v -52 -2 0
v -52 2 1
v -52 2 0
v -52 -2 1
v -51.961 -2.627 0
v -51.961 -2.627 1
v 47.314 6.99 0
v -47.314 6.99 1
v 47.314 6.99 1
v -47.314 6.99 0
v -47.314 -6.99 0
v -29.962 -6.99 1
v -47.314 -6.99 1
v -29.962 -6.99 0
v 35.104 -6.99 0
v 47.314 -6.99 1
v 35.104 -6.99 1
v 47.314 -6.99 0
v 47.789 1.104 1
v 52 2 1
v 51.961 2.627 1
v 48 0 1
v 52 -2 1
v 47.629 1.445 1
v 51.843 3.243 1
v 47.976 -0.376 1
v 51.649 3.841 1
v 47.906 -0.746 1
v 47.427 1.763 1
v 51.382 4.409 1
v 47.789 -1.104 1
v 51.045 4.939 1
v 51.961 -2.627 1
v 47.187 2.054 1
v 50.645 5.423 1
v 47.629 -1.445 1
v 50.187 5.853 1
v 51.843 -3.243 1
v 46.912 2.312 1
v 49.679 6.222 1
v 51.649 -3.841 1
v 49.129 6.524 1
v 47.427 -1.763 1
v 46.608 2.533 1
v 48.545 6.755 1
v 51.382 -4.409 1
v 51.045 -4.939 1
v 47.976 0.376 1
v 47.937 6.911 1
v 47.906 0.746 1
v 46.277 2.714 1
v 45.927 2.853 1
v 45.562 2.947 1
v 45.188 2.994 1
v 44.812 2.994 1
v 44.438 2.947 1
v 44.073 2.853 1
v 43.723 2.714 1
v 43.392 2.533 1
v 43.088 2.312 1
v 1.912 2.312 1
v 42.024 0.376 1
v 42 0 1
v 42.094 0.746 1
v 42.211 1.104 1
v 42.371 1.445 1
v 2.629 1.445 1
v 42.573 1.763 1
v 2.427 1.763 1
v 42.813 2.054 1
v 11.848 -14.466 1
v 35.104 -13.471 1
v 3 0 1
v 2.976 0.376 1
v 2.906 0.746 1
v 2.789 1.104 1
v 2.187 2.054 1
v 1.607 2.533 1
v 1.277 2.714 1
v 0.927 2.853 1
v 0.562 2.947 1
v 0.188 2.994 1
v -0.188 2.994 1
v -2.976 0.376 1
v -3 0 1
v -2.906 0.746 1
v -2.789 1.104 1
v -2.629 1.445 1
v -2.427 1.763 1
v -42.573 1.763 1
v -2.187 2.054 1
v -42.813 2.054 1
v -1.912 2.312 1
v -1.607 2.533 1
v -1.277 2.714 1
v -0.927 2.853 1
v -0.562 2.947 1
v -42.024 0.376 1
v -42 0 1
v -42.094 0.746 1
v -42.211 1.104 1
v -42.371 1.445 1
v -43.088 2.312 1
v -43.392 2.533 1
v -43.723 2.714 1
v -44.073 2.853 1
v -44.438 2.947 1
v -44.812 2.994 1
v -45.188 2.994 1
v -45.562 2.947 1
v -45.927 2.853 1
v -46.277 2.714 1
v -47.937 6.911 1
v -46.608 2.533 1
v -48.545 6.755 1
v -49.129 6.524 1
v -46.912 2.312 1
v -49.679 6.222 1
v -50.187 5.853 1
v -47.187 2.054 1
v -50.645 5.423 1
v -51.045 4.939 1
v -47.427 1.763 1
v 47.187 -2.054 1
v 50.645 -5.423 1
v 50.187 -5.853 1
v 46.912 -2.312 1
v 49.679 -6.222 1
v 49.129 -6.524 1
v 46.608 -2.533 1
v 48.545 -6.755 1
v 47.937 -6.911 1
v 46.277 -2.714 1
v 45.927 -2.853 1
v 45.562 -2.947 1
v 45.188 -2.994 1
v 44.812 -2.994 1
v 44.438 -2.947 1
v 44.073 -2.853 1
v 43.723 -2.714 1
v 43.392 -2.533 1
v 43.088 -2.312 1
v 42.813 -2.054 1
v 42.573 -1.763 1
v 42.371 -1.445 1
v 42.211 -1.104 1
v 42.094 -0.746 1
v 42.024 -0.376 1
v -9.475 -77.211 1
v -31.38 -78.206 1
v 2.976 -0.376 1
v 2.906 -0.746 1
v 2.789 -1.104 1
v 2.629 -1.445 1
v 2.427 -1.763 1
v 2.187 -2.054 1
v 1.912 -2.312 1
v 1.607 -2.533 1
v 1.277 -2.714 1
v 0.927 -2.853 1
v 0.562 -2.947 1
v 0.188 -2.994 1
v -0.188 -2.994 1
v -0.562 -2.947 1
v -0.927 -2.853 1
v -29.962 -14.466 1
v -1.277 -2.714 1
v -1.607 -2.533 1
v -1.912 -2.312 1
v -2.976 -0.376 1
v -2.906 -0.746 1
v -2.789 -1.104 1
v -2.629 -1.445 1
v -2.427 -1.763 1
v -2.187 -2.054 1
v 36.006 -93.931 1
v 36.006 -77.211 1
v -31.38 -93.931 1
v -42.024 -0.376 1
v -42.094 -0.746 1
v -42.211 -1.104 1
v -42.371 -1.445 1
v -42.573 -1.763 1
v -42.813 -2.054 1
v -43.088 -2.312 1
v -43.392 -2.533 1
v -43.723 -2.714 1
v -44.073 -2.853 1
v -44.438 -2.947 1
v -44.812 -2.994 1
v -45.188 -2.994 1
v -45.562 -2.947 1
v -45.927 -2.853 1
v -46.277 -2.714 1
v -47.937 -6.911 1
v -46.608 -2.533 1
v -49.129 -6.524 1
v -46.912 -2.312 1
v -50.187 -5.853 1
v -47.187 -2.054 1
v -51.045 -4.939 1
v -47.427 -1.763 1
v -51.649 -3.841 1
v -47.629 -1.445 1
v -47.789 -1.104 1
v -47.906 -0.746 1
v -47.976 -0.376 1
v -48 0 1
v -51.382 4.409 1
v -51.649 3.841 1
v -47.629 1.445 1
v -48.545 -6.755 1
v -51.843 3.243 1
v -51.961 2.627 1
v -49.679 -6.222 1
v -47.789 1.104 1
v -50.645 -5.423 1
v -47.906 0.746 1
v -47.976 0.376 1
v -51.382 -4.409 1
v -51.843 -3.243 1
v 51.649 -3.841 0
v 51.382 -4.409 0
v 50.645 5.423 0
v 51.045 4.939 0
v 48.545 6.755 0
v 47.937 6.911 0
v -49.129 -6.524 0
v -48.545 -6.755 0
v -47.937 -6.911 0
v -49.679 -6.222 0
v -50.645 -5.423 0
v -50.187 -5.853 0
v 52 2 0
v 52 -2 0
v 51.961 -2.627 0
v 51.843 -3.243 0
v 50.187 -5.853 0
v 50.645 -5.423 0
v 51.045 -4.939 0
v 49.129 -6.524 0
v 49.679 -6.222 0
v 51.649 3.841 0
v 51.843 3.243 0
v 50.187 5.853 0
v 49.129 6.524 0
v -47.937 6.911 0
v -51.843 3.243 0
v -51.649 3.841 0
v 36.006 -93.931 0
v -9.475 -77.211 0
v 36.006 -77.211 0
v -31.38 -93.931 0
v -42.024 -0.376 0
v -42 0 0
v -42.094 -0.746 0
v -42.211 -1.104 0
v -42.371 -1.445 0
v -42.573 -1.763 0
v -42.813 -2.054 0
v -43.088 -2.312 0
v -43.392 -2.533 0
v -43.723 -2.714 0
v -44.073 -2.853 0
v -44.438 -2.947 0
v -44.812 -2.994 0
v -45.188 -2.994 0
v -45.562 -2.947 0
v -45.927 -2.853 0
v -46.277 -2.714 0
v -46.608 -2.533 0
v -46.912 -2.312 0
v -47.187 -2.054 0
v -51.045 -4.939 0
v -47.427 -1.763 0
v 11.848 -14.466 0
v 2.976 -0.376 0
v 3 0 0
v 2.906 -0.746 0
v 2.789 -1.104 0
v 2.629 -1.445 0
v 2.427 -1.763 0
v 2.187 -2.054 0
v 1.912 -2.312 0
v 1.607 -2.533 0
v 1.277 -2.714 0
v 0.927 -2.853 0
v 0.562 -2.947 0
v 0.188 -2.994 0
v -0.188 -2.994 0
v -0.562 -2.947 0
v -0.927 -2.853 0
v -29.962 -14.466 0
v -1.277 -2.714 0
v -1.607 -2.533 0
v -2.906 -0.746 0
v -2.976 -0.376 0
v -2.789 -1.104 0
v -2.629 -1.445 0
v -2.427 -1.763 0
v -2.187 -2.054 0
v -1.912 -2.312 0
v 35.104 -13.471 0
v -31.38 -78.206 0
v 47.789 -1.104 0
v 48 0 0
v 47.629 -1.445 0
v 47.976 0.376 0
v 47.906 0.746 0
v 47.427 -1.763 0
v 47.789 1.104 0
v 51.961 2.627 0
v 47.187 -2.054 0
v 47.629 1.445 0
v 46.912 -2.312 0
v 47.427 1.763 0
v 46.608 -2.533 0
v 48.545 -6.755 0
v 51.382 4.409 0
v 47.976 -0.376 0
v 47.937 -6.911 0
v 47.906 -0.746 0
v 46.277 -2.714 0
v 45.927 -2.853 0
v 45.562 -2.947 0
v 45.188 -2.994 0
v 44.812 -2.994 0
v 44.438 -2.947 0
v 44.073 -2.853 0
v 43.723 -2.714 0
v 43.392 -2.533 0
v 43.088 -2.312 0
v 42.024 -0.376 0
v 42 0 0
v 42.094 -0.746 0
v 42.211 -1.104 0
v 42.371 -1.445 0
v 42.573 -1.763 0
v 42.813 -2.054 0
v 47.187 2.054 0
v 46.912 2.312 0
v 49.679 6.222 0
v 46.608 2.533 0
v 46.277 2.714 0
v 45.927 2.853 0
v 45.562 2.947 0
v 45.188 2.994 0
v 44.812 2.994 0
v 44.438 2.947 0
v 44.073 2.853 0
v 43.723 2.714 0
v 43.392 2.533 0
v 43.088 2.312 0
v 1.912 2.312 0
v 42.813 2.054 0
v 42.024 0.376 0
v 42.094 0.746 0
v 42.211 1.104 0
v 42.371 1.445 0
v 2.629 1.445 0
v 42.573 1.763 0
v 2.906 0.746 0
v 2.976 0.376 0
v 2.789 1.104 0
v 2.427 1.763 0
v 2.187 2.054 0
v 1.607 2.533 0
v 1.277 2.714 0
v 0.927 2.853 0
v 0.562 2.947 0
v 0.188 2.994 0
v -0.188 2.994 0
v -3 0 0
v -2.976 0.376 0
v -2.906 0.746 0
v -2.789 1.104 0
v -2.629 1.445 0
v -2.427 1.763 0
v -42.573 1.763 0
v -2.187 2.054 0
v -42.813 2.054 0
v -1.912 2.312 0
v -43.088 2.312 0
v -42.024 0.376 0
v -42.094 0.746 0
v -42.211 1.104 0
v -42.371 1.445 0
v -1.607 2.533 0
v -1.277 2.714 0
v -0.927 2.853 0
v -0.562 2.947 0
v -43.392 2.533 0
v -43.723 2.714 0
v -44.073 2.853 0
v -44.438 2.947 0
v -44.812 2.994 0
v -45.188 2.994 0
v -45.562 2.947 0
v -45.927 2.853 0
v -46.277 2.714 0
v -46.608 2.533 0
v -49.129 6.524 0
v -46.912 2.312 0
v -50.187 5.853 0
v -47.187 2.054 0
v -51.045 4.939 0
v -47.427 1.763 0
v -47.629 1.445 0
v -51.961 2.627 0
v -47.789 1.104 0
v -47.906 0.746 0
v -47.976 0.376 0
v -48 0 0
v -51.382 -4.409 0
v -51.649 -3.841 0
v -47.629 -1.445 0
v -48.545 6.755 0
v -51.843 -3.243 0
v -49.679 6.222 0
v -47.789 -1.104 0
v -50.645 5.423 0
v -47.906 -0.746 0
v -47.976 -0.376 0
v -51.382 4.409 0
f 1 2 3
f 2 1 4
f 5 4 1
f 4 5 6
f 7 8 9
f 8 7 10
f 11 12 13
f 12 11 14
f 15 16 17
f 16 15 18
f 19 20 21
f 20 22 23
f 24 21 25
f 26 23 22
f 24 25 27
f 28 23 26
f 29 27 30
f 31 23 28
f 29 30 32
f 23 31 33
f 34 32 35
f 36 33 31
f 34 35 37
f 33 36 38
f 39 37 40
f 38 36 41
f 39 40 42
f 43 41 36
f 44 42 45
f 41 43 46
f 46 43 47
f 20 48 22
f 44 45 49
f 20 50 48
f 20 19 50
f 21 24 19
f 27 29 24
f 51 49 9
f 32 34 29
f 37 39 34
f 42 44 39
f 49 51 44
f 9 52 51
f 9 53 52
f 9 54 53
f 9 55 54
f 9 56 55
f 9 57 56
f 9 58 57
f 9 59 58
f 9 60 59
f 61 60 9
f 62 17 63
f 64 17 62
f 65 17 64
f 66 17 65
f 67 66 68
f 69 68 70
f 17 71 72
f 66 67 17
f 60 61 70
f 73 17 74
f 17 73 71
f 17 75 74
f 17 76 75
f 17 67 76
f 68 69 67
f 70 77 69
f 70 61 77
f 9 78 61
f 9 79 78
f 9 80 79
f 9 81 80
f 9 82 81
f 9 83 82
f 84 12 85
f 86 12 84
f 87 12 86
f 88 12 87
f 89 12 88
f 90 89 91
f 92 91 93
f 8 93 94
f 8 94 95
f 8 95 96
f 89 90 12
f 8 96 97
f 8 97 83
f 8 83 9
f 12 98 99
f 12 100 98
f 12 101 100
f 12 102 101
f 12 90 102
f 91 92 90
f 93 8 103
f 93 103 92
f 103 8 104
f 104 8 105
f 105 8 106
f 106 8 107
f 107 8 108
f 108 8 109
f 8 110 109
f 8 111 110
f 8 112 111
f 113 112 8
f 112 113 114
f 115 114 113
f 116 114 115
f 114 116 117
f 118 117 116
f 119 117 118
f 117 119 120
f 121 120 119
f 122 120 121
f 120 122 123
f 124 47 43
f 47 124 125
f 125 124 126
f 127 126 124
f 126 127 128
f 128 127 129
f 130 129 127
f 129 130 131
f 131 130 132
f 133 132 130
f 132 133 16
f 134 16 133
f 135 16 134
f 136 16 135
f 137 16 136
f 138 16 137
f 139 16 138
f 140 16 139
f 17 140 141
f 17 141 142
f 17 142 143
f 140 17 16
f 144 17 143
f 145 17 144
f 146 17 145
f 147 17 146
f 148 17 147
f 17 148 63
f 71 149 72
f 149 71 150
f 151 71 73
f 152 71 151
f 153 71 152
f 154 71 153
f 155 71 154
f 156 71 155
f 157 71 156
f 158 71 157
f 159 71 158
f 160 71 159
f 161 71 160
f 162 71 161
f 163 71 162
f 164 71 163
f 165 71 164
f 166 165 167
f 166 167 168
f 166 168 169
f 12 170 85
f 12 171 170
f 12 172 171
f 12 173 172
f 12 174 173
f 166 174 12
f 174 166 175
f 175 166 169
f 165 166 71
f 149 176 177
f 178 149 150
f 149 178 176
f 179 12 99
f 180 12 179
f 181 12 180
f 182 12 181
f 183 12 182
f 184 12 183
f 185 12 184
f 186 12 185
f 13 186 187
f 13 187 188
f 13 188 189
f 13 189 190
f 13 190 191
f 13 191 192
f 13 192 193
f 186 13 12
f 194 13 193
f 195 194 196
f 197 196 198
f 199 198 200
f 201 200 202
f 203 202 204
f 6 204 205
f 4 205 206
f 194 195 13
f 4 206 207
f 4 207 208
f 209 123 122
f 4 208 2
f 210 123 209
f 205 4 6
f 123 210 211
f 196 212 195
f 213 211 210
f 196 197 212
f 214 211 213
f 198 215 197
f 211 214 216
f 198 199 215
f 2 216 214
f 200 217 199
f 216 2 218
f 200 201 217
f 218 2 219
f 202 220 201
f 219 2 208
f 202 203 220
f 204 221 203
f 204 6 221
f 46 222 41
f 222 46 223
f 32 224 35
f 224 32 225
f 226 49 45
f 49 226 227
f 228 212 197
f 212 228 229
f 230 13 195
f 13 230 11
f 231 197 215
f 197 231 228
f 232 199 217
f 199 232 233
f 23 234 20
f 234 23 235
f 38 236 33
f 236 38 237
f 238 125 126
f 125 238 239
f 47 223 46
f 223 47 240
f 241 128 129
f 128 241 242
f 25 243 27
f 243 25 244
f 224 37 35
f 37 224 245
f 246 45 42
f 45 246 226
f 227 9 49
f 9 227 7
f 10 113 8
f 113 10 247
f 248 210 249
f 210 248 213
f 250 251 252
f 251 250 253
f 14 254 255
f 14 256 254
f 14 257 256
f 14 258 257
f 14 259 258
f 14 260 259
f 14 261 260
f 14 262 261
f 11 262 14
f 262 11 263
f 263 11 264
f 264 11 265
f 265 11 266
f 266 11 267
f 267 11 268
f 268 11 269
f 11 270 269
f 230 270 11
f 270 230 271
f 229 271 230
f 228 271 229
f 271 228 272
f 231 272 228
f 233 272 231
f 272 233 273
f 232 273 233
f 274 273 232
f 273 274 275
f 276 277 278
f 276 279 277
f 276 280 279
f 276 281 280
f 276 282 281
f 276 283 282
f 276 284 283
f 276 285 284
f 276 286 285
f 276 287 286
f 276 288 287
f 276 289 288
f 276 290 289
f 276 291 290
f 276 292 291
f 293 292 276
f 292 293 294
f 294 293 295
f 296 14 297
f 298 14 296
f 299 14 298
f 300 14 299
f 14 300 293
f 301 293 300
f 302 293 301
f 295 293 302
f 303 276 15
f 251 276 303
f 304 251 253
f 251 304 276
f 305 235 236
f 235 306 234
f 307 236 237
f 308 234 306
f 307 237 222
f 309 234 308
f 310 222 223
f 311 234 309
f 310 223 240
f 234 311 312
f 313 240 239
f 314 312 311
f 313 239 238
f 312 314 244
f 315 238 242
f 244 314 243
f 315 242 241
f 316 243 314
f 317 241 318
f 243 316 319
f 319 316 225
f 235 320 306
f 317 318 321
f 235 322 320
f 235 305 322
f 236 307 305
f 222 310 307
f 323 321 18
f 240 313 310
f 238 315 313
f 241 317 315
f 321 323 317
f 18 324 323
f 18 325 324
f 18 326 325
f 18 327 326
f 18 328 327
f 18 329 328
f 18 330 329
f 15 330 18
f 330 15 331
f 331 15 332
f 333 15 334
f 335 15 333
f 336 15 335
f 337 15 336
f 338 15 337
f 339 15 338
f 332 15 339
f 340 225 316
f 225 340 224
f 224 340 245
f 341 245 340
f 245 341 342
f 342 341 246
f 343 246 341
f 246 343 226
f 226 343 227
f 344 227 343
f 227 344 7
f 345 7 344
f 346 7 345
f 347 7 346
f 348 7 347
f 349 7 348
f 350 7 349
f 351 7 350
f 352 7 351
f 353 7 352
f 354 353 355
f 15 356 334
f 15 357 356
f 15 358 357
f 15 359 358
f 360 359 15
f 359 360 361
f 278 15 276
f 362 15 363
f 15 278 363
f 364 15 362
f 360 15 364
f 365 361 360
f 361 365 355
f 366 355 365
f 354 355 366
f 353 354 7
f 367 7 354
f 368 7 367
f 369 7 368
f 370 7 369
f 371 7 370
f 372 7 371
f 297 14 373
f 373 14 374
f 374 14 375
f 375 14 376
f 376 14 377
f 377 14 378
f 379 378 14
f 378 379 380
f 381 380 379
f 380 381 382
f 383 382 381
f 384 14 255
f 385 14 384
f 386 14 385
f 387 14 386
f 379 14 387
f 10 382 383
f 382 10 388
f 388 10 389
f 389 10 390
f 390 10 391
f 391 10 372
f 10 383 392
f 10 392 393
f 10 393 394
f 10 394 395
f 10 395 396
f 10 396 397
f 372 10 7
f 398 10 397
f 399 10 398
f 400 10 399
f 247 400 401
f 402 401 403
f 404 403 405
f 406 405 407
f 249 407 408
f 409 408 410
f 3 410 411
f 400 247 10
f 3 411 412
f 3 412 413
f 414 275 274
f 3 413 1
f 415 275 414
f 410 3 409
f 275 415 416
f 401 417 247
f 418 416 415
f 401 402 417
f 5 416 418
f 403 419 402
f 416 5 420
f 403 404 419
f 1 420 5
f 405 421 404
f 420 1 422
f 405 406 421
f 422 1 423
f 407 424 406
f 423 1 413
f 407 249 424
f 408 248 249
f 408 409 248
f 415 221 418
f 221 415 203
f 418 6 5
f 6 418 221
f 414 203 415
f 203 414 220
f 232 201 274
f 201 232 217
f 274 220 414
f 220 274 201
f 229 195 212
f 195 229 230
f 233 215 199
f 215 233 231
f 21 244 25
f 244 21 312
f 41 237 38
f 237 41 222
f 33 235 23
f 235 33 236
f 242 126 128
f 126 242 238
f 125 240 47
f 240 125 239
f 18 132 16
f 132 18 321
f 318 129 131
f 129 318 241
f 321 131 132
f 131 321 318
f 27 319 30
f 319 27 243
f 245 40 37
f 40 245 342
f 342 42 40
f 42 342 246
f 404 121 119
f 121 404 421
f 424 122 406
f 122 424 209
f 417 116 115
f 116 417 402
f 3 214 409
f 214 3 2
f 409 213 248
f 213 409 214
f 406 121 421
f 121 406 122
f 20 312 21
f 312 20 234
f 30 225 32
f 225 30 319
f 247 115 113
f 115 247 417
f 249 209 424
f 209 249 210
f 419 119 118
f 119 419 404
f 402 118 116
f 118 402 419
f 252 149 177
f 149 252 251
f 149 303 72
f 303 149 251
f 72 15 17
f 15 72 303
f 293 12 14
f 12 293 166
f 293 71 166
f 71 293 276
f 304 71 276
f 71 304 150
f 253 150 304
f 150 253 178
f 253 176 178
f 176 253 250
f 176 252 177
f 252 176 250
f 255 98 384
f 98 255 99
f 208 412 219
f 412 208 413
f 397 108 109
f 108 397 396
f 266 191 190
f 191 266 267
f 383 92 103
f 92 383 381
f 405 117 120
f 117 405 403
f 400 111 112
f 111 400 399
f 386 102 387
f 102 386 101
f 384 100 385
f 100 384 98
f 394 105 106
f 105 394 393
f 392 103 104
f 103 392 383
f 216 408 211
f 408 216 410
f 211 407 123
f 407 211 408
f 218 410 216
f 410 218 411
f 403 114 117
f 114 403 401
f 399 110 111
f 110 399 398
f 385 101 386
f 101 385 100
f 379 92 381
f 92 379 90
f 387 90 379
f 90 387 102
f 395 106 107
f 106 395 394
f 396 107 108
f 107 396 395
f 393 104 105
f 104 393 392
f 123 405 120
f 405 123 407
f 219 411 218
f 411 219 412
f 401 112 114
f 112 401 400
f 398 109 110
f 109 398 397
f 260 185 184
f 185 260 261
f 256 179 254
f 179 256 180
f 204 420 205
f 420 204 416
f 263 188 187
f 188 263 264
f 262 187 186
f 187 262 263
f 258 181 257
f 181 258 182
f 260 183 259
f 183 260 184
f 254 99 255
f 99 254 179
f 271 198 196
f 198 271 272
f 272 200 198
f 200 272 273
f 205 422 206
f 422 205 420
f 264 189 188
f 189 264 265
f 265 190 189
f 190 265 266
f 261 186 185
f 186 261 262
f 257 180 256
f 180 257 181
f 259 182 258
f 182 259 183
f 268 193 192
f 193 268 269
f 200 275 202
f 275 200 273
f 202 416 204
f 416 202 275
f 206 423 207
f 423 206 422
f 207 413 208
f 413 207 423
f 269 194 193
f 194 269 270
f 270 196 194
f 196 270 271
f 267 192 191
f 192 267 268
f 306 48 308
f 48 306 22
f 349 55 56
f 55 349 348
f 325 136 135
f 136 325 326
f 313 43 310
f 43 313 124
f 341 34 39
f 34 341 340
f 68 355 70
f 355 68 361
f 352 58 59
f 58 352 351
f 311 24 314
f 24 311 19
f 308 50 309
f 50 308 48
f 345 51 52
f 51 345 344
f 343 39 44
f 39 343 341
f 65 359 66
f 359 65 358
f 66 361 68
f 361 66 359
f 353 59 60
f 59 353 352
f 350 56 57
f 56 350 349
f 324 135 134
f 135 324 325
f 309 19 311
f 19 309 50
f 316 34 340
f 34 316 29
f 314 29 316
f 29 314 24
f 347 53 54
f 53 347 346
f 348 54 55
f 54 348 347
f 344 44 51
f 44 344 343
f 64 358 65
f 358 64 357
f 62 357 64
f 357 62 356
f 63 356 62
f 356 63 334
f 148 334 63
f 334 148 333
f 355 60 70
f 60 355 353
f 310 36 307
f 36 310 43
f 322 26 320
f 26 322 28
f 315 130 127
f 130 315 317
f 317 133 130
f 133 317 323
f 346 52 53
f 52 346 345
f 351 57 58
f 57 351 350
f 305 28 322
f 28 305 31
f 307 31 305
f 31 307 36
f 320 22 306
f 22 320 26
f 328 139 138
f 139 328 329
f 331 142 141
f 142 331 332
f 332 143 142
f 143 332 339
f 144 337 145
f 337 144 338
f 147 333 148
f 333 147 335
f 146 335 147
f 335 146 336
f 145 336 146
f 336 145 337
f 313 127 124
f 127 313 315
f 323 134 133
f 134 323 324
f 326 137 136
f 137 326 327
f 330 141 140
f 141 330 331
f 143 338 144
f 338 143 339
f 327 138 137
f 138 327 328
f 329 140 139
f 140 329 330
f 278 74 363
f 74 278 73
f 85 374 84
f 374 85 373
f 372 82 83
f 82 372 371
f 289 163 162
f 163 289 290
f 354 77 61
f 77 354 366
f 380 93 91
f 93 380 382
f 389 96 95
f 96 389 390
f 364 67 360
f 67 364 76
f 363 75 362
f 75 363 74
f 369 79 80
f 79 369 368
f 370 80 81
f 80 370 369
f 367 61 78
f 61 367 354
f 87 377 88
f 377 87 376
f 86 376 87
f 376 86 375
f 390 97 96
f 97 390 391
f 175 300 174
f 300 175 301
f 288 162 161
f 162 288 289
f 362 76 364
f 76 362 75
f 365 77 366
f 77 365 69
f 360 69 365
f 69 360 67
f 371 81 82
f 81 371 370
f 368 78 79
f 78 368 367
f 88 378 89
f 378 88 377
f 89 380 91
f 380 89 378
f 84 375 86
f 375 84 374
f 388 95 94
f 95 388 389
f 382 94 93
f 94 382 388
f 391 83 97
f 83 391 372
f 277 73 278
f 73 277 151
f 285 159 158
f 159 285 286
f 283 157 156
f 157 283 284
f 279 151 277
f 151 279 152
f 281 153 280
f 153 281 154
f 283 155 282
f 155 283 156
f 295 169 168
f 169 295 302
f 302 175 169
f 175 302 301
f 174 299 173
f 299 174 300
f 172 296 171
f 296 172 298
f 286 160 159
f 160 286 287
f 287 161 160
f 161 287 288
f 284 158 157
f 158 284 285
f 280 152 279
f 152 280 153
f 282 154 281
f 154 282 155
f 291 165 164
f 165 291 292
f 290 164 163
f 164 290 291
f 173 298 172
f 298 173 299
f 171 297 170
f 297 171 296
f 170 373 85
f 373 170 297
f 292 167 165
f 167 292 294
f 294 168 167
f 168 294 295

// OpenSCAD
$fn = 50;


difference() {
	union() {
		translate(v = [0, 0, 0]) {
			rotate(a = [0, 0, 0]) {
				hull() {
					translate(v = [-47.0000000000, 2.0000000000, 0]) {
						rotate(a = [0, 0, 0]) {
							translate(v = [0, 0, 0]) {
								rotate(a = [0, 0, 0]) {
									cylinder(h = 1, r = 5);
								}
							}
						}
					}
					translate(v = [47.0000000000, 2.0000000000, 0]) {
						rotate(a = [0, 0, 0]) {
							translate(v = [0, 0, 0]) {
								rotate(a = [0, 0, 0]) {
									cylinder(h = 1, r = 5);
								}
							}
						}
					}
					translate(v = [-47.0000000000, -2.0000000000, 0]) {
						rotate(a = [0, 0, 0]) {
							translate(v = [0, 0, 0]) {
								rotate(a = [0, 0, 0]) {
									cylinder(h = 1, r = 5);
								}
							}
						}
					}
					translate(v = [47.0000000000, -2.0000000000, 0]) {
						rotate(a = [0, 0, 0]) {
							translate(v = [0, 0, 0]) {
								rotate(a = [0, 0, 0]) {
									cylinder(h = 1, r = 5);
								}
							}
						}
					}
				}
			}
		}
		translate(v = [0, 0, 0]) {
			rotate(a = [0, 0, 0]) {
				linear_extrude(height = 1) {
					text(font = "DejaVu Sans Mono:style=Bold", halign = "center", size = 95, text = "Z", valign = "top");
				}
			}
		}
	}
	union() {
		translate(v = [-45.0000000000, 0.0000000000, -125.0000000000]) {
			rotate(a = [0, 0, 0]) {
				cylinder(h = 250, r = 3.0000000000);
			}
		}
		translate(v = [45.0000000000, 0.0000000000, -125.0000000000]) {
			rotate(a = [0, 0, 0]) {
				cylinder(h = 250, r = 3.0000000000);
			}
		}
		translate(v = [45.0000000000, 0.0000000000, -125.0000000000]) {
			rotate(a = [0, 0, 0]) {
				cylinder(h = 250, r = 3.0000000000);
			}
		}
		translate(v = [0, 0, -125.0000000000]) {
			rotate(a = [0, 0, 0]) {
				cylinder(h = 250, r = 3.0000000000);
			}
		}
	}
}
